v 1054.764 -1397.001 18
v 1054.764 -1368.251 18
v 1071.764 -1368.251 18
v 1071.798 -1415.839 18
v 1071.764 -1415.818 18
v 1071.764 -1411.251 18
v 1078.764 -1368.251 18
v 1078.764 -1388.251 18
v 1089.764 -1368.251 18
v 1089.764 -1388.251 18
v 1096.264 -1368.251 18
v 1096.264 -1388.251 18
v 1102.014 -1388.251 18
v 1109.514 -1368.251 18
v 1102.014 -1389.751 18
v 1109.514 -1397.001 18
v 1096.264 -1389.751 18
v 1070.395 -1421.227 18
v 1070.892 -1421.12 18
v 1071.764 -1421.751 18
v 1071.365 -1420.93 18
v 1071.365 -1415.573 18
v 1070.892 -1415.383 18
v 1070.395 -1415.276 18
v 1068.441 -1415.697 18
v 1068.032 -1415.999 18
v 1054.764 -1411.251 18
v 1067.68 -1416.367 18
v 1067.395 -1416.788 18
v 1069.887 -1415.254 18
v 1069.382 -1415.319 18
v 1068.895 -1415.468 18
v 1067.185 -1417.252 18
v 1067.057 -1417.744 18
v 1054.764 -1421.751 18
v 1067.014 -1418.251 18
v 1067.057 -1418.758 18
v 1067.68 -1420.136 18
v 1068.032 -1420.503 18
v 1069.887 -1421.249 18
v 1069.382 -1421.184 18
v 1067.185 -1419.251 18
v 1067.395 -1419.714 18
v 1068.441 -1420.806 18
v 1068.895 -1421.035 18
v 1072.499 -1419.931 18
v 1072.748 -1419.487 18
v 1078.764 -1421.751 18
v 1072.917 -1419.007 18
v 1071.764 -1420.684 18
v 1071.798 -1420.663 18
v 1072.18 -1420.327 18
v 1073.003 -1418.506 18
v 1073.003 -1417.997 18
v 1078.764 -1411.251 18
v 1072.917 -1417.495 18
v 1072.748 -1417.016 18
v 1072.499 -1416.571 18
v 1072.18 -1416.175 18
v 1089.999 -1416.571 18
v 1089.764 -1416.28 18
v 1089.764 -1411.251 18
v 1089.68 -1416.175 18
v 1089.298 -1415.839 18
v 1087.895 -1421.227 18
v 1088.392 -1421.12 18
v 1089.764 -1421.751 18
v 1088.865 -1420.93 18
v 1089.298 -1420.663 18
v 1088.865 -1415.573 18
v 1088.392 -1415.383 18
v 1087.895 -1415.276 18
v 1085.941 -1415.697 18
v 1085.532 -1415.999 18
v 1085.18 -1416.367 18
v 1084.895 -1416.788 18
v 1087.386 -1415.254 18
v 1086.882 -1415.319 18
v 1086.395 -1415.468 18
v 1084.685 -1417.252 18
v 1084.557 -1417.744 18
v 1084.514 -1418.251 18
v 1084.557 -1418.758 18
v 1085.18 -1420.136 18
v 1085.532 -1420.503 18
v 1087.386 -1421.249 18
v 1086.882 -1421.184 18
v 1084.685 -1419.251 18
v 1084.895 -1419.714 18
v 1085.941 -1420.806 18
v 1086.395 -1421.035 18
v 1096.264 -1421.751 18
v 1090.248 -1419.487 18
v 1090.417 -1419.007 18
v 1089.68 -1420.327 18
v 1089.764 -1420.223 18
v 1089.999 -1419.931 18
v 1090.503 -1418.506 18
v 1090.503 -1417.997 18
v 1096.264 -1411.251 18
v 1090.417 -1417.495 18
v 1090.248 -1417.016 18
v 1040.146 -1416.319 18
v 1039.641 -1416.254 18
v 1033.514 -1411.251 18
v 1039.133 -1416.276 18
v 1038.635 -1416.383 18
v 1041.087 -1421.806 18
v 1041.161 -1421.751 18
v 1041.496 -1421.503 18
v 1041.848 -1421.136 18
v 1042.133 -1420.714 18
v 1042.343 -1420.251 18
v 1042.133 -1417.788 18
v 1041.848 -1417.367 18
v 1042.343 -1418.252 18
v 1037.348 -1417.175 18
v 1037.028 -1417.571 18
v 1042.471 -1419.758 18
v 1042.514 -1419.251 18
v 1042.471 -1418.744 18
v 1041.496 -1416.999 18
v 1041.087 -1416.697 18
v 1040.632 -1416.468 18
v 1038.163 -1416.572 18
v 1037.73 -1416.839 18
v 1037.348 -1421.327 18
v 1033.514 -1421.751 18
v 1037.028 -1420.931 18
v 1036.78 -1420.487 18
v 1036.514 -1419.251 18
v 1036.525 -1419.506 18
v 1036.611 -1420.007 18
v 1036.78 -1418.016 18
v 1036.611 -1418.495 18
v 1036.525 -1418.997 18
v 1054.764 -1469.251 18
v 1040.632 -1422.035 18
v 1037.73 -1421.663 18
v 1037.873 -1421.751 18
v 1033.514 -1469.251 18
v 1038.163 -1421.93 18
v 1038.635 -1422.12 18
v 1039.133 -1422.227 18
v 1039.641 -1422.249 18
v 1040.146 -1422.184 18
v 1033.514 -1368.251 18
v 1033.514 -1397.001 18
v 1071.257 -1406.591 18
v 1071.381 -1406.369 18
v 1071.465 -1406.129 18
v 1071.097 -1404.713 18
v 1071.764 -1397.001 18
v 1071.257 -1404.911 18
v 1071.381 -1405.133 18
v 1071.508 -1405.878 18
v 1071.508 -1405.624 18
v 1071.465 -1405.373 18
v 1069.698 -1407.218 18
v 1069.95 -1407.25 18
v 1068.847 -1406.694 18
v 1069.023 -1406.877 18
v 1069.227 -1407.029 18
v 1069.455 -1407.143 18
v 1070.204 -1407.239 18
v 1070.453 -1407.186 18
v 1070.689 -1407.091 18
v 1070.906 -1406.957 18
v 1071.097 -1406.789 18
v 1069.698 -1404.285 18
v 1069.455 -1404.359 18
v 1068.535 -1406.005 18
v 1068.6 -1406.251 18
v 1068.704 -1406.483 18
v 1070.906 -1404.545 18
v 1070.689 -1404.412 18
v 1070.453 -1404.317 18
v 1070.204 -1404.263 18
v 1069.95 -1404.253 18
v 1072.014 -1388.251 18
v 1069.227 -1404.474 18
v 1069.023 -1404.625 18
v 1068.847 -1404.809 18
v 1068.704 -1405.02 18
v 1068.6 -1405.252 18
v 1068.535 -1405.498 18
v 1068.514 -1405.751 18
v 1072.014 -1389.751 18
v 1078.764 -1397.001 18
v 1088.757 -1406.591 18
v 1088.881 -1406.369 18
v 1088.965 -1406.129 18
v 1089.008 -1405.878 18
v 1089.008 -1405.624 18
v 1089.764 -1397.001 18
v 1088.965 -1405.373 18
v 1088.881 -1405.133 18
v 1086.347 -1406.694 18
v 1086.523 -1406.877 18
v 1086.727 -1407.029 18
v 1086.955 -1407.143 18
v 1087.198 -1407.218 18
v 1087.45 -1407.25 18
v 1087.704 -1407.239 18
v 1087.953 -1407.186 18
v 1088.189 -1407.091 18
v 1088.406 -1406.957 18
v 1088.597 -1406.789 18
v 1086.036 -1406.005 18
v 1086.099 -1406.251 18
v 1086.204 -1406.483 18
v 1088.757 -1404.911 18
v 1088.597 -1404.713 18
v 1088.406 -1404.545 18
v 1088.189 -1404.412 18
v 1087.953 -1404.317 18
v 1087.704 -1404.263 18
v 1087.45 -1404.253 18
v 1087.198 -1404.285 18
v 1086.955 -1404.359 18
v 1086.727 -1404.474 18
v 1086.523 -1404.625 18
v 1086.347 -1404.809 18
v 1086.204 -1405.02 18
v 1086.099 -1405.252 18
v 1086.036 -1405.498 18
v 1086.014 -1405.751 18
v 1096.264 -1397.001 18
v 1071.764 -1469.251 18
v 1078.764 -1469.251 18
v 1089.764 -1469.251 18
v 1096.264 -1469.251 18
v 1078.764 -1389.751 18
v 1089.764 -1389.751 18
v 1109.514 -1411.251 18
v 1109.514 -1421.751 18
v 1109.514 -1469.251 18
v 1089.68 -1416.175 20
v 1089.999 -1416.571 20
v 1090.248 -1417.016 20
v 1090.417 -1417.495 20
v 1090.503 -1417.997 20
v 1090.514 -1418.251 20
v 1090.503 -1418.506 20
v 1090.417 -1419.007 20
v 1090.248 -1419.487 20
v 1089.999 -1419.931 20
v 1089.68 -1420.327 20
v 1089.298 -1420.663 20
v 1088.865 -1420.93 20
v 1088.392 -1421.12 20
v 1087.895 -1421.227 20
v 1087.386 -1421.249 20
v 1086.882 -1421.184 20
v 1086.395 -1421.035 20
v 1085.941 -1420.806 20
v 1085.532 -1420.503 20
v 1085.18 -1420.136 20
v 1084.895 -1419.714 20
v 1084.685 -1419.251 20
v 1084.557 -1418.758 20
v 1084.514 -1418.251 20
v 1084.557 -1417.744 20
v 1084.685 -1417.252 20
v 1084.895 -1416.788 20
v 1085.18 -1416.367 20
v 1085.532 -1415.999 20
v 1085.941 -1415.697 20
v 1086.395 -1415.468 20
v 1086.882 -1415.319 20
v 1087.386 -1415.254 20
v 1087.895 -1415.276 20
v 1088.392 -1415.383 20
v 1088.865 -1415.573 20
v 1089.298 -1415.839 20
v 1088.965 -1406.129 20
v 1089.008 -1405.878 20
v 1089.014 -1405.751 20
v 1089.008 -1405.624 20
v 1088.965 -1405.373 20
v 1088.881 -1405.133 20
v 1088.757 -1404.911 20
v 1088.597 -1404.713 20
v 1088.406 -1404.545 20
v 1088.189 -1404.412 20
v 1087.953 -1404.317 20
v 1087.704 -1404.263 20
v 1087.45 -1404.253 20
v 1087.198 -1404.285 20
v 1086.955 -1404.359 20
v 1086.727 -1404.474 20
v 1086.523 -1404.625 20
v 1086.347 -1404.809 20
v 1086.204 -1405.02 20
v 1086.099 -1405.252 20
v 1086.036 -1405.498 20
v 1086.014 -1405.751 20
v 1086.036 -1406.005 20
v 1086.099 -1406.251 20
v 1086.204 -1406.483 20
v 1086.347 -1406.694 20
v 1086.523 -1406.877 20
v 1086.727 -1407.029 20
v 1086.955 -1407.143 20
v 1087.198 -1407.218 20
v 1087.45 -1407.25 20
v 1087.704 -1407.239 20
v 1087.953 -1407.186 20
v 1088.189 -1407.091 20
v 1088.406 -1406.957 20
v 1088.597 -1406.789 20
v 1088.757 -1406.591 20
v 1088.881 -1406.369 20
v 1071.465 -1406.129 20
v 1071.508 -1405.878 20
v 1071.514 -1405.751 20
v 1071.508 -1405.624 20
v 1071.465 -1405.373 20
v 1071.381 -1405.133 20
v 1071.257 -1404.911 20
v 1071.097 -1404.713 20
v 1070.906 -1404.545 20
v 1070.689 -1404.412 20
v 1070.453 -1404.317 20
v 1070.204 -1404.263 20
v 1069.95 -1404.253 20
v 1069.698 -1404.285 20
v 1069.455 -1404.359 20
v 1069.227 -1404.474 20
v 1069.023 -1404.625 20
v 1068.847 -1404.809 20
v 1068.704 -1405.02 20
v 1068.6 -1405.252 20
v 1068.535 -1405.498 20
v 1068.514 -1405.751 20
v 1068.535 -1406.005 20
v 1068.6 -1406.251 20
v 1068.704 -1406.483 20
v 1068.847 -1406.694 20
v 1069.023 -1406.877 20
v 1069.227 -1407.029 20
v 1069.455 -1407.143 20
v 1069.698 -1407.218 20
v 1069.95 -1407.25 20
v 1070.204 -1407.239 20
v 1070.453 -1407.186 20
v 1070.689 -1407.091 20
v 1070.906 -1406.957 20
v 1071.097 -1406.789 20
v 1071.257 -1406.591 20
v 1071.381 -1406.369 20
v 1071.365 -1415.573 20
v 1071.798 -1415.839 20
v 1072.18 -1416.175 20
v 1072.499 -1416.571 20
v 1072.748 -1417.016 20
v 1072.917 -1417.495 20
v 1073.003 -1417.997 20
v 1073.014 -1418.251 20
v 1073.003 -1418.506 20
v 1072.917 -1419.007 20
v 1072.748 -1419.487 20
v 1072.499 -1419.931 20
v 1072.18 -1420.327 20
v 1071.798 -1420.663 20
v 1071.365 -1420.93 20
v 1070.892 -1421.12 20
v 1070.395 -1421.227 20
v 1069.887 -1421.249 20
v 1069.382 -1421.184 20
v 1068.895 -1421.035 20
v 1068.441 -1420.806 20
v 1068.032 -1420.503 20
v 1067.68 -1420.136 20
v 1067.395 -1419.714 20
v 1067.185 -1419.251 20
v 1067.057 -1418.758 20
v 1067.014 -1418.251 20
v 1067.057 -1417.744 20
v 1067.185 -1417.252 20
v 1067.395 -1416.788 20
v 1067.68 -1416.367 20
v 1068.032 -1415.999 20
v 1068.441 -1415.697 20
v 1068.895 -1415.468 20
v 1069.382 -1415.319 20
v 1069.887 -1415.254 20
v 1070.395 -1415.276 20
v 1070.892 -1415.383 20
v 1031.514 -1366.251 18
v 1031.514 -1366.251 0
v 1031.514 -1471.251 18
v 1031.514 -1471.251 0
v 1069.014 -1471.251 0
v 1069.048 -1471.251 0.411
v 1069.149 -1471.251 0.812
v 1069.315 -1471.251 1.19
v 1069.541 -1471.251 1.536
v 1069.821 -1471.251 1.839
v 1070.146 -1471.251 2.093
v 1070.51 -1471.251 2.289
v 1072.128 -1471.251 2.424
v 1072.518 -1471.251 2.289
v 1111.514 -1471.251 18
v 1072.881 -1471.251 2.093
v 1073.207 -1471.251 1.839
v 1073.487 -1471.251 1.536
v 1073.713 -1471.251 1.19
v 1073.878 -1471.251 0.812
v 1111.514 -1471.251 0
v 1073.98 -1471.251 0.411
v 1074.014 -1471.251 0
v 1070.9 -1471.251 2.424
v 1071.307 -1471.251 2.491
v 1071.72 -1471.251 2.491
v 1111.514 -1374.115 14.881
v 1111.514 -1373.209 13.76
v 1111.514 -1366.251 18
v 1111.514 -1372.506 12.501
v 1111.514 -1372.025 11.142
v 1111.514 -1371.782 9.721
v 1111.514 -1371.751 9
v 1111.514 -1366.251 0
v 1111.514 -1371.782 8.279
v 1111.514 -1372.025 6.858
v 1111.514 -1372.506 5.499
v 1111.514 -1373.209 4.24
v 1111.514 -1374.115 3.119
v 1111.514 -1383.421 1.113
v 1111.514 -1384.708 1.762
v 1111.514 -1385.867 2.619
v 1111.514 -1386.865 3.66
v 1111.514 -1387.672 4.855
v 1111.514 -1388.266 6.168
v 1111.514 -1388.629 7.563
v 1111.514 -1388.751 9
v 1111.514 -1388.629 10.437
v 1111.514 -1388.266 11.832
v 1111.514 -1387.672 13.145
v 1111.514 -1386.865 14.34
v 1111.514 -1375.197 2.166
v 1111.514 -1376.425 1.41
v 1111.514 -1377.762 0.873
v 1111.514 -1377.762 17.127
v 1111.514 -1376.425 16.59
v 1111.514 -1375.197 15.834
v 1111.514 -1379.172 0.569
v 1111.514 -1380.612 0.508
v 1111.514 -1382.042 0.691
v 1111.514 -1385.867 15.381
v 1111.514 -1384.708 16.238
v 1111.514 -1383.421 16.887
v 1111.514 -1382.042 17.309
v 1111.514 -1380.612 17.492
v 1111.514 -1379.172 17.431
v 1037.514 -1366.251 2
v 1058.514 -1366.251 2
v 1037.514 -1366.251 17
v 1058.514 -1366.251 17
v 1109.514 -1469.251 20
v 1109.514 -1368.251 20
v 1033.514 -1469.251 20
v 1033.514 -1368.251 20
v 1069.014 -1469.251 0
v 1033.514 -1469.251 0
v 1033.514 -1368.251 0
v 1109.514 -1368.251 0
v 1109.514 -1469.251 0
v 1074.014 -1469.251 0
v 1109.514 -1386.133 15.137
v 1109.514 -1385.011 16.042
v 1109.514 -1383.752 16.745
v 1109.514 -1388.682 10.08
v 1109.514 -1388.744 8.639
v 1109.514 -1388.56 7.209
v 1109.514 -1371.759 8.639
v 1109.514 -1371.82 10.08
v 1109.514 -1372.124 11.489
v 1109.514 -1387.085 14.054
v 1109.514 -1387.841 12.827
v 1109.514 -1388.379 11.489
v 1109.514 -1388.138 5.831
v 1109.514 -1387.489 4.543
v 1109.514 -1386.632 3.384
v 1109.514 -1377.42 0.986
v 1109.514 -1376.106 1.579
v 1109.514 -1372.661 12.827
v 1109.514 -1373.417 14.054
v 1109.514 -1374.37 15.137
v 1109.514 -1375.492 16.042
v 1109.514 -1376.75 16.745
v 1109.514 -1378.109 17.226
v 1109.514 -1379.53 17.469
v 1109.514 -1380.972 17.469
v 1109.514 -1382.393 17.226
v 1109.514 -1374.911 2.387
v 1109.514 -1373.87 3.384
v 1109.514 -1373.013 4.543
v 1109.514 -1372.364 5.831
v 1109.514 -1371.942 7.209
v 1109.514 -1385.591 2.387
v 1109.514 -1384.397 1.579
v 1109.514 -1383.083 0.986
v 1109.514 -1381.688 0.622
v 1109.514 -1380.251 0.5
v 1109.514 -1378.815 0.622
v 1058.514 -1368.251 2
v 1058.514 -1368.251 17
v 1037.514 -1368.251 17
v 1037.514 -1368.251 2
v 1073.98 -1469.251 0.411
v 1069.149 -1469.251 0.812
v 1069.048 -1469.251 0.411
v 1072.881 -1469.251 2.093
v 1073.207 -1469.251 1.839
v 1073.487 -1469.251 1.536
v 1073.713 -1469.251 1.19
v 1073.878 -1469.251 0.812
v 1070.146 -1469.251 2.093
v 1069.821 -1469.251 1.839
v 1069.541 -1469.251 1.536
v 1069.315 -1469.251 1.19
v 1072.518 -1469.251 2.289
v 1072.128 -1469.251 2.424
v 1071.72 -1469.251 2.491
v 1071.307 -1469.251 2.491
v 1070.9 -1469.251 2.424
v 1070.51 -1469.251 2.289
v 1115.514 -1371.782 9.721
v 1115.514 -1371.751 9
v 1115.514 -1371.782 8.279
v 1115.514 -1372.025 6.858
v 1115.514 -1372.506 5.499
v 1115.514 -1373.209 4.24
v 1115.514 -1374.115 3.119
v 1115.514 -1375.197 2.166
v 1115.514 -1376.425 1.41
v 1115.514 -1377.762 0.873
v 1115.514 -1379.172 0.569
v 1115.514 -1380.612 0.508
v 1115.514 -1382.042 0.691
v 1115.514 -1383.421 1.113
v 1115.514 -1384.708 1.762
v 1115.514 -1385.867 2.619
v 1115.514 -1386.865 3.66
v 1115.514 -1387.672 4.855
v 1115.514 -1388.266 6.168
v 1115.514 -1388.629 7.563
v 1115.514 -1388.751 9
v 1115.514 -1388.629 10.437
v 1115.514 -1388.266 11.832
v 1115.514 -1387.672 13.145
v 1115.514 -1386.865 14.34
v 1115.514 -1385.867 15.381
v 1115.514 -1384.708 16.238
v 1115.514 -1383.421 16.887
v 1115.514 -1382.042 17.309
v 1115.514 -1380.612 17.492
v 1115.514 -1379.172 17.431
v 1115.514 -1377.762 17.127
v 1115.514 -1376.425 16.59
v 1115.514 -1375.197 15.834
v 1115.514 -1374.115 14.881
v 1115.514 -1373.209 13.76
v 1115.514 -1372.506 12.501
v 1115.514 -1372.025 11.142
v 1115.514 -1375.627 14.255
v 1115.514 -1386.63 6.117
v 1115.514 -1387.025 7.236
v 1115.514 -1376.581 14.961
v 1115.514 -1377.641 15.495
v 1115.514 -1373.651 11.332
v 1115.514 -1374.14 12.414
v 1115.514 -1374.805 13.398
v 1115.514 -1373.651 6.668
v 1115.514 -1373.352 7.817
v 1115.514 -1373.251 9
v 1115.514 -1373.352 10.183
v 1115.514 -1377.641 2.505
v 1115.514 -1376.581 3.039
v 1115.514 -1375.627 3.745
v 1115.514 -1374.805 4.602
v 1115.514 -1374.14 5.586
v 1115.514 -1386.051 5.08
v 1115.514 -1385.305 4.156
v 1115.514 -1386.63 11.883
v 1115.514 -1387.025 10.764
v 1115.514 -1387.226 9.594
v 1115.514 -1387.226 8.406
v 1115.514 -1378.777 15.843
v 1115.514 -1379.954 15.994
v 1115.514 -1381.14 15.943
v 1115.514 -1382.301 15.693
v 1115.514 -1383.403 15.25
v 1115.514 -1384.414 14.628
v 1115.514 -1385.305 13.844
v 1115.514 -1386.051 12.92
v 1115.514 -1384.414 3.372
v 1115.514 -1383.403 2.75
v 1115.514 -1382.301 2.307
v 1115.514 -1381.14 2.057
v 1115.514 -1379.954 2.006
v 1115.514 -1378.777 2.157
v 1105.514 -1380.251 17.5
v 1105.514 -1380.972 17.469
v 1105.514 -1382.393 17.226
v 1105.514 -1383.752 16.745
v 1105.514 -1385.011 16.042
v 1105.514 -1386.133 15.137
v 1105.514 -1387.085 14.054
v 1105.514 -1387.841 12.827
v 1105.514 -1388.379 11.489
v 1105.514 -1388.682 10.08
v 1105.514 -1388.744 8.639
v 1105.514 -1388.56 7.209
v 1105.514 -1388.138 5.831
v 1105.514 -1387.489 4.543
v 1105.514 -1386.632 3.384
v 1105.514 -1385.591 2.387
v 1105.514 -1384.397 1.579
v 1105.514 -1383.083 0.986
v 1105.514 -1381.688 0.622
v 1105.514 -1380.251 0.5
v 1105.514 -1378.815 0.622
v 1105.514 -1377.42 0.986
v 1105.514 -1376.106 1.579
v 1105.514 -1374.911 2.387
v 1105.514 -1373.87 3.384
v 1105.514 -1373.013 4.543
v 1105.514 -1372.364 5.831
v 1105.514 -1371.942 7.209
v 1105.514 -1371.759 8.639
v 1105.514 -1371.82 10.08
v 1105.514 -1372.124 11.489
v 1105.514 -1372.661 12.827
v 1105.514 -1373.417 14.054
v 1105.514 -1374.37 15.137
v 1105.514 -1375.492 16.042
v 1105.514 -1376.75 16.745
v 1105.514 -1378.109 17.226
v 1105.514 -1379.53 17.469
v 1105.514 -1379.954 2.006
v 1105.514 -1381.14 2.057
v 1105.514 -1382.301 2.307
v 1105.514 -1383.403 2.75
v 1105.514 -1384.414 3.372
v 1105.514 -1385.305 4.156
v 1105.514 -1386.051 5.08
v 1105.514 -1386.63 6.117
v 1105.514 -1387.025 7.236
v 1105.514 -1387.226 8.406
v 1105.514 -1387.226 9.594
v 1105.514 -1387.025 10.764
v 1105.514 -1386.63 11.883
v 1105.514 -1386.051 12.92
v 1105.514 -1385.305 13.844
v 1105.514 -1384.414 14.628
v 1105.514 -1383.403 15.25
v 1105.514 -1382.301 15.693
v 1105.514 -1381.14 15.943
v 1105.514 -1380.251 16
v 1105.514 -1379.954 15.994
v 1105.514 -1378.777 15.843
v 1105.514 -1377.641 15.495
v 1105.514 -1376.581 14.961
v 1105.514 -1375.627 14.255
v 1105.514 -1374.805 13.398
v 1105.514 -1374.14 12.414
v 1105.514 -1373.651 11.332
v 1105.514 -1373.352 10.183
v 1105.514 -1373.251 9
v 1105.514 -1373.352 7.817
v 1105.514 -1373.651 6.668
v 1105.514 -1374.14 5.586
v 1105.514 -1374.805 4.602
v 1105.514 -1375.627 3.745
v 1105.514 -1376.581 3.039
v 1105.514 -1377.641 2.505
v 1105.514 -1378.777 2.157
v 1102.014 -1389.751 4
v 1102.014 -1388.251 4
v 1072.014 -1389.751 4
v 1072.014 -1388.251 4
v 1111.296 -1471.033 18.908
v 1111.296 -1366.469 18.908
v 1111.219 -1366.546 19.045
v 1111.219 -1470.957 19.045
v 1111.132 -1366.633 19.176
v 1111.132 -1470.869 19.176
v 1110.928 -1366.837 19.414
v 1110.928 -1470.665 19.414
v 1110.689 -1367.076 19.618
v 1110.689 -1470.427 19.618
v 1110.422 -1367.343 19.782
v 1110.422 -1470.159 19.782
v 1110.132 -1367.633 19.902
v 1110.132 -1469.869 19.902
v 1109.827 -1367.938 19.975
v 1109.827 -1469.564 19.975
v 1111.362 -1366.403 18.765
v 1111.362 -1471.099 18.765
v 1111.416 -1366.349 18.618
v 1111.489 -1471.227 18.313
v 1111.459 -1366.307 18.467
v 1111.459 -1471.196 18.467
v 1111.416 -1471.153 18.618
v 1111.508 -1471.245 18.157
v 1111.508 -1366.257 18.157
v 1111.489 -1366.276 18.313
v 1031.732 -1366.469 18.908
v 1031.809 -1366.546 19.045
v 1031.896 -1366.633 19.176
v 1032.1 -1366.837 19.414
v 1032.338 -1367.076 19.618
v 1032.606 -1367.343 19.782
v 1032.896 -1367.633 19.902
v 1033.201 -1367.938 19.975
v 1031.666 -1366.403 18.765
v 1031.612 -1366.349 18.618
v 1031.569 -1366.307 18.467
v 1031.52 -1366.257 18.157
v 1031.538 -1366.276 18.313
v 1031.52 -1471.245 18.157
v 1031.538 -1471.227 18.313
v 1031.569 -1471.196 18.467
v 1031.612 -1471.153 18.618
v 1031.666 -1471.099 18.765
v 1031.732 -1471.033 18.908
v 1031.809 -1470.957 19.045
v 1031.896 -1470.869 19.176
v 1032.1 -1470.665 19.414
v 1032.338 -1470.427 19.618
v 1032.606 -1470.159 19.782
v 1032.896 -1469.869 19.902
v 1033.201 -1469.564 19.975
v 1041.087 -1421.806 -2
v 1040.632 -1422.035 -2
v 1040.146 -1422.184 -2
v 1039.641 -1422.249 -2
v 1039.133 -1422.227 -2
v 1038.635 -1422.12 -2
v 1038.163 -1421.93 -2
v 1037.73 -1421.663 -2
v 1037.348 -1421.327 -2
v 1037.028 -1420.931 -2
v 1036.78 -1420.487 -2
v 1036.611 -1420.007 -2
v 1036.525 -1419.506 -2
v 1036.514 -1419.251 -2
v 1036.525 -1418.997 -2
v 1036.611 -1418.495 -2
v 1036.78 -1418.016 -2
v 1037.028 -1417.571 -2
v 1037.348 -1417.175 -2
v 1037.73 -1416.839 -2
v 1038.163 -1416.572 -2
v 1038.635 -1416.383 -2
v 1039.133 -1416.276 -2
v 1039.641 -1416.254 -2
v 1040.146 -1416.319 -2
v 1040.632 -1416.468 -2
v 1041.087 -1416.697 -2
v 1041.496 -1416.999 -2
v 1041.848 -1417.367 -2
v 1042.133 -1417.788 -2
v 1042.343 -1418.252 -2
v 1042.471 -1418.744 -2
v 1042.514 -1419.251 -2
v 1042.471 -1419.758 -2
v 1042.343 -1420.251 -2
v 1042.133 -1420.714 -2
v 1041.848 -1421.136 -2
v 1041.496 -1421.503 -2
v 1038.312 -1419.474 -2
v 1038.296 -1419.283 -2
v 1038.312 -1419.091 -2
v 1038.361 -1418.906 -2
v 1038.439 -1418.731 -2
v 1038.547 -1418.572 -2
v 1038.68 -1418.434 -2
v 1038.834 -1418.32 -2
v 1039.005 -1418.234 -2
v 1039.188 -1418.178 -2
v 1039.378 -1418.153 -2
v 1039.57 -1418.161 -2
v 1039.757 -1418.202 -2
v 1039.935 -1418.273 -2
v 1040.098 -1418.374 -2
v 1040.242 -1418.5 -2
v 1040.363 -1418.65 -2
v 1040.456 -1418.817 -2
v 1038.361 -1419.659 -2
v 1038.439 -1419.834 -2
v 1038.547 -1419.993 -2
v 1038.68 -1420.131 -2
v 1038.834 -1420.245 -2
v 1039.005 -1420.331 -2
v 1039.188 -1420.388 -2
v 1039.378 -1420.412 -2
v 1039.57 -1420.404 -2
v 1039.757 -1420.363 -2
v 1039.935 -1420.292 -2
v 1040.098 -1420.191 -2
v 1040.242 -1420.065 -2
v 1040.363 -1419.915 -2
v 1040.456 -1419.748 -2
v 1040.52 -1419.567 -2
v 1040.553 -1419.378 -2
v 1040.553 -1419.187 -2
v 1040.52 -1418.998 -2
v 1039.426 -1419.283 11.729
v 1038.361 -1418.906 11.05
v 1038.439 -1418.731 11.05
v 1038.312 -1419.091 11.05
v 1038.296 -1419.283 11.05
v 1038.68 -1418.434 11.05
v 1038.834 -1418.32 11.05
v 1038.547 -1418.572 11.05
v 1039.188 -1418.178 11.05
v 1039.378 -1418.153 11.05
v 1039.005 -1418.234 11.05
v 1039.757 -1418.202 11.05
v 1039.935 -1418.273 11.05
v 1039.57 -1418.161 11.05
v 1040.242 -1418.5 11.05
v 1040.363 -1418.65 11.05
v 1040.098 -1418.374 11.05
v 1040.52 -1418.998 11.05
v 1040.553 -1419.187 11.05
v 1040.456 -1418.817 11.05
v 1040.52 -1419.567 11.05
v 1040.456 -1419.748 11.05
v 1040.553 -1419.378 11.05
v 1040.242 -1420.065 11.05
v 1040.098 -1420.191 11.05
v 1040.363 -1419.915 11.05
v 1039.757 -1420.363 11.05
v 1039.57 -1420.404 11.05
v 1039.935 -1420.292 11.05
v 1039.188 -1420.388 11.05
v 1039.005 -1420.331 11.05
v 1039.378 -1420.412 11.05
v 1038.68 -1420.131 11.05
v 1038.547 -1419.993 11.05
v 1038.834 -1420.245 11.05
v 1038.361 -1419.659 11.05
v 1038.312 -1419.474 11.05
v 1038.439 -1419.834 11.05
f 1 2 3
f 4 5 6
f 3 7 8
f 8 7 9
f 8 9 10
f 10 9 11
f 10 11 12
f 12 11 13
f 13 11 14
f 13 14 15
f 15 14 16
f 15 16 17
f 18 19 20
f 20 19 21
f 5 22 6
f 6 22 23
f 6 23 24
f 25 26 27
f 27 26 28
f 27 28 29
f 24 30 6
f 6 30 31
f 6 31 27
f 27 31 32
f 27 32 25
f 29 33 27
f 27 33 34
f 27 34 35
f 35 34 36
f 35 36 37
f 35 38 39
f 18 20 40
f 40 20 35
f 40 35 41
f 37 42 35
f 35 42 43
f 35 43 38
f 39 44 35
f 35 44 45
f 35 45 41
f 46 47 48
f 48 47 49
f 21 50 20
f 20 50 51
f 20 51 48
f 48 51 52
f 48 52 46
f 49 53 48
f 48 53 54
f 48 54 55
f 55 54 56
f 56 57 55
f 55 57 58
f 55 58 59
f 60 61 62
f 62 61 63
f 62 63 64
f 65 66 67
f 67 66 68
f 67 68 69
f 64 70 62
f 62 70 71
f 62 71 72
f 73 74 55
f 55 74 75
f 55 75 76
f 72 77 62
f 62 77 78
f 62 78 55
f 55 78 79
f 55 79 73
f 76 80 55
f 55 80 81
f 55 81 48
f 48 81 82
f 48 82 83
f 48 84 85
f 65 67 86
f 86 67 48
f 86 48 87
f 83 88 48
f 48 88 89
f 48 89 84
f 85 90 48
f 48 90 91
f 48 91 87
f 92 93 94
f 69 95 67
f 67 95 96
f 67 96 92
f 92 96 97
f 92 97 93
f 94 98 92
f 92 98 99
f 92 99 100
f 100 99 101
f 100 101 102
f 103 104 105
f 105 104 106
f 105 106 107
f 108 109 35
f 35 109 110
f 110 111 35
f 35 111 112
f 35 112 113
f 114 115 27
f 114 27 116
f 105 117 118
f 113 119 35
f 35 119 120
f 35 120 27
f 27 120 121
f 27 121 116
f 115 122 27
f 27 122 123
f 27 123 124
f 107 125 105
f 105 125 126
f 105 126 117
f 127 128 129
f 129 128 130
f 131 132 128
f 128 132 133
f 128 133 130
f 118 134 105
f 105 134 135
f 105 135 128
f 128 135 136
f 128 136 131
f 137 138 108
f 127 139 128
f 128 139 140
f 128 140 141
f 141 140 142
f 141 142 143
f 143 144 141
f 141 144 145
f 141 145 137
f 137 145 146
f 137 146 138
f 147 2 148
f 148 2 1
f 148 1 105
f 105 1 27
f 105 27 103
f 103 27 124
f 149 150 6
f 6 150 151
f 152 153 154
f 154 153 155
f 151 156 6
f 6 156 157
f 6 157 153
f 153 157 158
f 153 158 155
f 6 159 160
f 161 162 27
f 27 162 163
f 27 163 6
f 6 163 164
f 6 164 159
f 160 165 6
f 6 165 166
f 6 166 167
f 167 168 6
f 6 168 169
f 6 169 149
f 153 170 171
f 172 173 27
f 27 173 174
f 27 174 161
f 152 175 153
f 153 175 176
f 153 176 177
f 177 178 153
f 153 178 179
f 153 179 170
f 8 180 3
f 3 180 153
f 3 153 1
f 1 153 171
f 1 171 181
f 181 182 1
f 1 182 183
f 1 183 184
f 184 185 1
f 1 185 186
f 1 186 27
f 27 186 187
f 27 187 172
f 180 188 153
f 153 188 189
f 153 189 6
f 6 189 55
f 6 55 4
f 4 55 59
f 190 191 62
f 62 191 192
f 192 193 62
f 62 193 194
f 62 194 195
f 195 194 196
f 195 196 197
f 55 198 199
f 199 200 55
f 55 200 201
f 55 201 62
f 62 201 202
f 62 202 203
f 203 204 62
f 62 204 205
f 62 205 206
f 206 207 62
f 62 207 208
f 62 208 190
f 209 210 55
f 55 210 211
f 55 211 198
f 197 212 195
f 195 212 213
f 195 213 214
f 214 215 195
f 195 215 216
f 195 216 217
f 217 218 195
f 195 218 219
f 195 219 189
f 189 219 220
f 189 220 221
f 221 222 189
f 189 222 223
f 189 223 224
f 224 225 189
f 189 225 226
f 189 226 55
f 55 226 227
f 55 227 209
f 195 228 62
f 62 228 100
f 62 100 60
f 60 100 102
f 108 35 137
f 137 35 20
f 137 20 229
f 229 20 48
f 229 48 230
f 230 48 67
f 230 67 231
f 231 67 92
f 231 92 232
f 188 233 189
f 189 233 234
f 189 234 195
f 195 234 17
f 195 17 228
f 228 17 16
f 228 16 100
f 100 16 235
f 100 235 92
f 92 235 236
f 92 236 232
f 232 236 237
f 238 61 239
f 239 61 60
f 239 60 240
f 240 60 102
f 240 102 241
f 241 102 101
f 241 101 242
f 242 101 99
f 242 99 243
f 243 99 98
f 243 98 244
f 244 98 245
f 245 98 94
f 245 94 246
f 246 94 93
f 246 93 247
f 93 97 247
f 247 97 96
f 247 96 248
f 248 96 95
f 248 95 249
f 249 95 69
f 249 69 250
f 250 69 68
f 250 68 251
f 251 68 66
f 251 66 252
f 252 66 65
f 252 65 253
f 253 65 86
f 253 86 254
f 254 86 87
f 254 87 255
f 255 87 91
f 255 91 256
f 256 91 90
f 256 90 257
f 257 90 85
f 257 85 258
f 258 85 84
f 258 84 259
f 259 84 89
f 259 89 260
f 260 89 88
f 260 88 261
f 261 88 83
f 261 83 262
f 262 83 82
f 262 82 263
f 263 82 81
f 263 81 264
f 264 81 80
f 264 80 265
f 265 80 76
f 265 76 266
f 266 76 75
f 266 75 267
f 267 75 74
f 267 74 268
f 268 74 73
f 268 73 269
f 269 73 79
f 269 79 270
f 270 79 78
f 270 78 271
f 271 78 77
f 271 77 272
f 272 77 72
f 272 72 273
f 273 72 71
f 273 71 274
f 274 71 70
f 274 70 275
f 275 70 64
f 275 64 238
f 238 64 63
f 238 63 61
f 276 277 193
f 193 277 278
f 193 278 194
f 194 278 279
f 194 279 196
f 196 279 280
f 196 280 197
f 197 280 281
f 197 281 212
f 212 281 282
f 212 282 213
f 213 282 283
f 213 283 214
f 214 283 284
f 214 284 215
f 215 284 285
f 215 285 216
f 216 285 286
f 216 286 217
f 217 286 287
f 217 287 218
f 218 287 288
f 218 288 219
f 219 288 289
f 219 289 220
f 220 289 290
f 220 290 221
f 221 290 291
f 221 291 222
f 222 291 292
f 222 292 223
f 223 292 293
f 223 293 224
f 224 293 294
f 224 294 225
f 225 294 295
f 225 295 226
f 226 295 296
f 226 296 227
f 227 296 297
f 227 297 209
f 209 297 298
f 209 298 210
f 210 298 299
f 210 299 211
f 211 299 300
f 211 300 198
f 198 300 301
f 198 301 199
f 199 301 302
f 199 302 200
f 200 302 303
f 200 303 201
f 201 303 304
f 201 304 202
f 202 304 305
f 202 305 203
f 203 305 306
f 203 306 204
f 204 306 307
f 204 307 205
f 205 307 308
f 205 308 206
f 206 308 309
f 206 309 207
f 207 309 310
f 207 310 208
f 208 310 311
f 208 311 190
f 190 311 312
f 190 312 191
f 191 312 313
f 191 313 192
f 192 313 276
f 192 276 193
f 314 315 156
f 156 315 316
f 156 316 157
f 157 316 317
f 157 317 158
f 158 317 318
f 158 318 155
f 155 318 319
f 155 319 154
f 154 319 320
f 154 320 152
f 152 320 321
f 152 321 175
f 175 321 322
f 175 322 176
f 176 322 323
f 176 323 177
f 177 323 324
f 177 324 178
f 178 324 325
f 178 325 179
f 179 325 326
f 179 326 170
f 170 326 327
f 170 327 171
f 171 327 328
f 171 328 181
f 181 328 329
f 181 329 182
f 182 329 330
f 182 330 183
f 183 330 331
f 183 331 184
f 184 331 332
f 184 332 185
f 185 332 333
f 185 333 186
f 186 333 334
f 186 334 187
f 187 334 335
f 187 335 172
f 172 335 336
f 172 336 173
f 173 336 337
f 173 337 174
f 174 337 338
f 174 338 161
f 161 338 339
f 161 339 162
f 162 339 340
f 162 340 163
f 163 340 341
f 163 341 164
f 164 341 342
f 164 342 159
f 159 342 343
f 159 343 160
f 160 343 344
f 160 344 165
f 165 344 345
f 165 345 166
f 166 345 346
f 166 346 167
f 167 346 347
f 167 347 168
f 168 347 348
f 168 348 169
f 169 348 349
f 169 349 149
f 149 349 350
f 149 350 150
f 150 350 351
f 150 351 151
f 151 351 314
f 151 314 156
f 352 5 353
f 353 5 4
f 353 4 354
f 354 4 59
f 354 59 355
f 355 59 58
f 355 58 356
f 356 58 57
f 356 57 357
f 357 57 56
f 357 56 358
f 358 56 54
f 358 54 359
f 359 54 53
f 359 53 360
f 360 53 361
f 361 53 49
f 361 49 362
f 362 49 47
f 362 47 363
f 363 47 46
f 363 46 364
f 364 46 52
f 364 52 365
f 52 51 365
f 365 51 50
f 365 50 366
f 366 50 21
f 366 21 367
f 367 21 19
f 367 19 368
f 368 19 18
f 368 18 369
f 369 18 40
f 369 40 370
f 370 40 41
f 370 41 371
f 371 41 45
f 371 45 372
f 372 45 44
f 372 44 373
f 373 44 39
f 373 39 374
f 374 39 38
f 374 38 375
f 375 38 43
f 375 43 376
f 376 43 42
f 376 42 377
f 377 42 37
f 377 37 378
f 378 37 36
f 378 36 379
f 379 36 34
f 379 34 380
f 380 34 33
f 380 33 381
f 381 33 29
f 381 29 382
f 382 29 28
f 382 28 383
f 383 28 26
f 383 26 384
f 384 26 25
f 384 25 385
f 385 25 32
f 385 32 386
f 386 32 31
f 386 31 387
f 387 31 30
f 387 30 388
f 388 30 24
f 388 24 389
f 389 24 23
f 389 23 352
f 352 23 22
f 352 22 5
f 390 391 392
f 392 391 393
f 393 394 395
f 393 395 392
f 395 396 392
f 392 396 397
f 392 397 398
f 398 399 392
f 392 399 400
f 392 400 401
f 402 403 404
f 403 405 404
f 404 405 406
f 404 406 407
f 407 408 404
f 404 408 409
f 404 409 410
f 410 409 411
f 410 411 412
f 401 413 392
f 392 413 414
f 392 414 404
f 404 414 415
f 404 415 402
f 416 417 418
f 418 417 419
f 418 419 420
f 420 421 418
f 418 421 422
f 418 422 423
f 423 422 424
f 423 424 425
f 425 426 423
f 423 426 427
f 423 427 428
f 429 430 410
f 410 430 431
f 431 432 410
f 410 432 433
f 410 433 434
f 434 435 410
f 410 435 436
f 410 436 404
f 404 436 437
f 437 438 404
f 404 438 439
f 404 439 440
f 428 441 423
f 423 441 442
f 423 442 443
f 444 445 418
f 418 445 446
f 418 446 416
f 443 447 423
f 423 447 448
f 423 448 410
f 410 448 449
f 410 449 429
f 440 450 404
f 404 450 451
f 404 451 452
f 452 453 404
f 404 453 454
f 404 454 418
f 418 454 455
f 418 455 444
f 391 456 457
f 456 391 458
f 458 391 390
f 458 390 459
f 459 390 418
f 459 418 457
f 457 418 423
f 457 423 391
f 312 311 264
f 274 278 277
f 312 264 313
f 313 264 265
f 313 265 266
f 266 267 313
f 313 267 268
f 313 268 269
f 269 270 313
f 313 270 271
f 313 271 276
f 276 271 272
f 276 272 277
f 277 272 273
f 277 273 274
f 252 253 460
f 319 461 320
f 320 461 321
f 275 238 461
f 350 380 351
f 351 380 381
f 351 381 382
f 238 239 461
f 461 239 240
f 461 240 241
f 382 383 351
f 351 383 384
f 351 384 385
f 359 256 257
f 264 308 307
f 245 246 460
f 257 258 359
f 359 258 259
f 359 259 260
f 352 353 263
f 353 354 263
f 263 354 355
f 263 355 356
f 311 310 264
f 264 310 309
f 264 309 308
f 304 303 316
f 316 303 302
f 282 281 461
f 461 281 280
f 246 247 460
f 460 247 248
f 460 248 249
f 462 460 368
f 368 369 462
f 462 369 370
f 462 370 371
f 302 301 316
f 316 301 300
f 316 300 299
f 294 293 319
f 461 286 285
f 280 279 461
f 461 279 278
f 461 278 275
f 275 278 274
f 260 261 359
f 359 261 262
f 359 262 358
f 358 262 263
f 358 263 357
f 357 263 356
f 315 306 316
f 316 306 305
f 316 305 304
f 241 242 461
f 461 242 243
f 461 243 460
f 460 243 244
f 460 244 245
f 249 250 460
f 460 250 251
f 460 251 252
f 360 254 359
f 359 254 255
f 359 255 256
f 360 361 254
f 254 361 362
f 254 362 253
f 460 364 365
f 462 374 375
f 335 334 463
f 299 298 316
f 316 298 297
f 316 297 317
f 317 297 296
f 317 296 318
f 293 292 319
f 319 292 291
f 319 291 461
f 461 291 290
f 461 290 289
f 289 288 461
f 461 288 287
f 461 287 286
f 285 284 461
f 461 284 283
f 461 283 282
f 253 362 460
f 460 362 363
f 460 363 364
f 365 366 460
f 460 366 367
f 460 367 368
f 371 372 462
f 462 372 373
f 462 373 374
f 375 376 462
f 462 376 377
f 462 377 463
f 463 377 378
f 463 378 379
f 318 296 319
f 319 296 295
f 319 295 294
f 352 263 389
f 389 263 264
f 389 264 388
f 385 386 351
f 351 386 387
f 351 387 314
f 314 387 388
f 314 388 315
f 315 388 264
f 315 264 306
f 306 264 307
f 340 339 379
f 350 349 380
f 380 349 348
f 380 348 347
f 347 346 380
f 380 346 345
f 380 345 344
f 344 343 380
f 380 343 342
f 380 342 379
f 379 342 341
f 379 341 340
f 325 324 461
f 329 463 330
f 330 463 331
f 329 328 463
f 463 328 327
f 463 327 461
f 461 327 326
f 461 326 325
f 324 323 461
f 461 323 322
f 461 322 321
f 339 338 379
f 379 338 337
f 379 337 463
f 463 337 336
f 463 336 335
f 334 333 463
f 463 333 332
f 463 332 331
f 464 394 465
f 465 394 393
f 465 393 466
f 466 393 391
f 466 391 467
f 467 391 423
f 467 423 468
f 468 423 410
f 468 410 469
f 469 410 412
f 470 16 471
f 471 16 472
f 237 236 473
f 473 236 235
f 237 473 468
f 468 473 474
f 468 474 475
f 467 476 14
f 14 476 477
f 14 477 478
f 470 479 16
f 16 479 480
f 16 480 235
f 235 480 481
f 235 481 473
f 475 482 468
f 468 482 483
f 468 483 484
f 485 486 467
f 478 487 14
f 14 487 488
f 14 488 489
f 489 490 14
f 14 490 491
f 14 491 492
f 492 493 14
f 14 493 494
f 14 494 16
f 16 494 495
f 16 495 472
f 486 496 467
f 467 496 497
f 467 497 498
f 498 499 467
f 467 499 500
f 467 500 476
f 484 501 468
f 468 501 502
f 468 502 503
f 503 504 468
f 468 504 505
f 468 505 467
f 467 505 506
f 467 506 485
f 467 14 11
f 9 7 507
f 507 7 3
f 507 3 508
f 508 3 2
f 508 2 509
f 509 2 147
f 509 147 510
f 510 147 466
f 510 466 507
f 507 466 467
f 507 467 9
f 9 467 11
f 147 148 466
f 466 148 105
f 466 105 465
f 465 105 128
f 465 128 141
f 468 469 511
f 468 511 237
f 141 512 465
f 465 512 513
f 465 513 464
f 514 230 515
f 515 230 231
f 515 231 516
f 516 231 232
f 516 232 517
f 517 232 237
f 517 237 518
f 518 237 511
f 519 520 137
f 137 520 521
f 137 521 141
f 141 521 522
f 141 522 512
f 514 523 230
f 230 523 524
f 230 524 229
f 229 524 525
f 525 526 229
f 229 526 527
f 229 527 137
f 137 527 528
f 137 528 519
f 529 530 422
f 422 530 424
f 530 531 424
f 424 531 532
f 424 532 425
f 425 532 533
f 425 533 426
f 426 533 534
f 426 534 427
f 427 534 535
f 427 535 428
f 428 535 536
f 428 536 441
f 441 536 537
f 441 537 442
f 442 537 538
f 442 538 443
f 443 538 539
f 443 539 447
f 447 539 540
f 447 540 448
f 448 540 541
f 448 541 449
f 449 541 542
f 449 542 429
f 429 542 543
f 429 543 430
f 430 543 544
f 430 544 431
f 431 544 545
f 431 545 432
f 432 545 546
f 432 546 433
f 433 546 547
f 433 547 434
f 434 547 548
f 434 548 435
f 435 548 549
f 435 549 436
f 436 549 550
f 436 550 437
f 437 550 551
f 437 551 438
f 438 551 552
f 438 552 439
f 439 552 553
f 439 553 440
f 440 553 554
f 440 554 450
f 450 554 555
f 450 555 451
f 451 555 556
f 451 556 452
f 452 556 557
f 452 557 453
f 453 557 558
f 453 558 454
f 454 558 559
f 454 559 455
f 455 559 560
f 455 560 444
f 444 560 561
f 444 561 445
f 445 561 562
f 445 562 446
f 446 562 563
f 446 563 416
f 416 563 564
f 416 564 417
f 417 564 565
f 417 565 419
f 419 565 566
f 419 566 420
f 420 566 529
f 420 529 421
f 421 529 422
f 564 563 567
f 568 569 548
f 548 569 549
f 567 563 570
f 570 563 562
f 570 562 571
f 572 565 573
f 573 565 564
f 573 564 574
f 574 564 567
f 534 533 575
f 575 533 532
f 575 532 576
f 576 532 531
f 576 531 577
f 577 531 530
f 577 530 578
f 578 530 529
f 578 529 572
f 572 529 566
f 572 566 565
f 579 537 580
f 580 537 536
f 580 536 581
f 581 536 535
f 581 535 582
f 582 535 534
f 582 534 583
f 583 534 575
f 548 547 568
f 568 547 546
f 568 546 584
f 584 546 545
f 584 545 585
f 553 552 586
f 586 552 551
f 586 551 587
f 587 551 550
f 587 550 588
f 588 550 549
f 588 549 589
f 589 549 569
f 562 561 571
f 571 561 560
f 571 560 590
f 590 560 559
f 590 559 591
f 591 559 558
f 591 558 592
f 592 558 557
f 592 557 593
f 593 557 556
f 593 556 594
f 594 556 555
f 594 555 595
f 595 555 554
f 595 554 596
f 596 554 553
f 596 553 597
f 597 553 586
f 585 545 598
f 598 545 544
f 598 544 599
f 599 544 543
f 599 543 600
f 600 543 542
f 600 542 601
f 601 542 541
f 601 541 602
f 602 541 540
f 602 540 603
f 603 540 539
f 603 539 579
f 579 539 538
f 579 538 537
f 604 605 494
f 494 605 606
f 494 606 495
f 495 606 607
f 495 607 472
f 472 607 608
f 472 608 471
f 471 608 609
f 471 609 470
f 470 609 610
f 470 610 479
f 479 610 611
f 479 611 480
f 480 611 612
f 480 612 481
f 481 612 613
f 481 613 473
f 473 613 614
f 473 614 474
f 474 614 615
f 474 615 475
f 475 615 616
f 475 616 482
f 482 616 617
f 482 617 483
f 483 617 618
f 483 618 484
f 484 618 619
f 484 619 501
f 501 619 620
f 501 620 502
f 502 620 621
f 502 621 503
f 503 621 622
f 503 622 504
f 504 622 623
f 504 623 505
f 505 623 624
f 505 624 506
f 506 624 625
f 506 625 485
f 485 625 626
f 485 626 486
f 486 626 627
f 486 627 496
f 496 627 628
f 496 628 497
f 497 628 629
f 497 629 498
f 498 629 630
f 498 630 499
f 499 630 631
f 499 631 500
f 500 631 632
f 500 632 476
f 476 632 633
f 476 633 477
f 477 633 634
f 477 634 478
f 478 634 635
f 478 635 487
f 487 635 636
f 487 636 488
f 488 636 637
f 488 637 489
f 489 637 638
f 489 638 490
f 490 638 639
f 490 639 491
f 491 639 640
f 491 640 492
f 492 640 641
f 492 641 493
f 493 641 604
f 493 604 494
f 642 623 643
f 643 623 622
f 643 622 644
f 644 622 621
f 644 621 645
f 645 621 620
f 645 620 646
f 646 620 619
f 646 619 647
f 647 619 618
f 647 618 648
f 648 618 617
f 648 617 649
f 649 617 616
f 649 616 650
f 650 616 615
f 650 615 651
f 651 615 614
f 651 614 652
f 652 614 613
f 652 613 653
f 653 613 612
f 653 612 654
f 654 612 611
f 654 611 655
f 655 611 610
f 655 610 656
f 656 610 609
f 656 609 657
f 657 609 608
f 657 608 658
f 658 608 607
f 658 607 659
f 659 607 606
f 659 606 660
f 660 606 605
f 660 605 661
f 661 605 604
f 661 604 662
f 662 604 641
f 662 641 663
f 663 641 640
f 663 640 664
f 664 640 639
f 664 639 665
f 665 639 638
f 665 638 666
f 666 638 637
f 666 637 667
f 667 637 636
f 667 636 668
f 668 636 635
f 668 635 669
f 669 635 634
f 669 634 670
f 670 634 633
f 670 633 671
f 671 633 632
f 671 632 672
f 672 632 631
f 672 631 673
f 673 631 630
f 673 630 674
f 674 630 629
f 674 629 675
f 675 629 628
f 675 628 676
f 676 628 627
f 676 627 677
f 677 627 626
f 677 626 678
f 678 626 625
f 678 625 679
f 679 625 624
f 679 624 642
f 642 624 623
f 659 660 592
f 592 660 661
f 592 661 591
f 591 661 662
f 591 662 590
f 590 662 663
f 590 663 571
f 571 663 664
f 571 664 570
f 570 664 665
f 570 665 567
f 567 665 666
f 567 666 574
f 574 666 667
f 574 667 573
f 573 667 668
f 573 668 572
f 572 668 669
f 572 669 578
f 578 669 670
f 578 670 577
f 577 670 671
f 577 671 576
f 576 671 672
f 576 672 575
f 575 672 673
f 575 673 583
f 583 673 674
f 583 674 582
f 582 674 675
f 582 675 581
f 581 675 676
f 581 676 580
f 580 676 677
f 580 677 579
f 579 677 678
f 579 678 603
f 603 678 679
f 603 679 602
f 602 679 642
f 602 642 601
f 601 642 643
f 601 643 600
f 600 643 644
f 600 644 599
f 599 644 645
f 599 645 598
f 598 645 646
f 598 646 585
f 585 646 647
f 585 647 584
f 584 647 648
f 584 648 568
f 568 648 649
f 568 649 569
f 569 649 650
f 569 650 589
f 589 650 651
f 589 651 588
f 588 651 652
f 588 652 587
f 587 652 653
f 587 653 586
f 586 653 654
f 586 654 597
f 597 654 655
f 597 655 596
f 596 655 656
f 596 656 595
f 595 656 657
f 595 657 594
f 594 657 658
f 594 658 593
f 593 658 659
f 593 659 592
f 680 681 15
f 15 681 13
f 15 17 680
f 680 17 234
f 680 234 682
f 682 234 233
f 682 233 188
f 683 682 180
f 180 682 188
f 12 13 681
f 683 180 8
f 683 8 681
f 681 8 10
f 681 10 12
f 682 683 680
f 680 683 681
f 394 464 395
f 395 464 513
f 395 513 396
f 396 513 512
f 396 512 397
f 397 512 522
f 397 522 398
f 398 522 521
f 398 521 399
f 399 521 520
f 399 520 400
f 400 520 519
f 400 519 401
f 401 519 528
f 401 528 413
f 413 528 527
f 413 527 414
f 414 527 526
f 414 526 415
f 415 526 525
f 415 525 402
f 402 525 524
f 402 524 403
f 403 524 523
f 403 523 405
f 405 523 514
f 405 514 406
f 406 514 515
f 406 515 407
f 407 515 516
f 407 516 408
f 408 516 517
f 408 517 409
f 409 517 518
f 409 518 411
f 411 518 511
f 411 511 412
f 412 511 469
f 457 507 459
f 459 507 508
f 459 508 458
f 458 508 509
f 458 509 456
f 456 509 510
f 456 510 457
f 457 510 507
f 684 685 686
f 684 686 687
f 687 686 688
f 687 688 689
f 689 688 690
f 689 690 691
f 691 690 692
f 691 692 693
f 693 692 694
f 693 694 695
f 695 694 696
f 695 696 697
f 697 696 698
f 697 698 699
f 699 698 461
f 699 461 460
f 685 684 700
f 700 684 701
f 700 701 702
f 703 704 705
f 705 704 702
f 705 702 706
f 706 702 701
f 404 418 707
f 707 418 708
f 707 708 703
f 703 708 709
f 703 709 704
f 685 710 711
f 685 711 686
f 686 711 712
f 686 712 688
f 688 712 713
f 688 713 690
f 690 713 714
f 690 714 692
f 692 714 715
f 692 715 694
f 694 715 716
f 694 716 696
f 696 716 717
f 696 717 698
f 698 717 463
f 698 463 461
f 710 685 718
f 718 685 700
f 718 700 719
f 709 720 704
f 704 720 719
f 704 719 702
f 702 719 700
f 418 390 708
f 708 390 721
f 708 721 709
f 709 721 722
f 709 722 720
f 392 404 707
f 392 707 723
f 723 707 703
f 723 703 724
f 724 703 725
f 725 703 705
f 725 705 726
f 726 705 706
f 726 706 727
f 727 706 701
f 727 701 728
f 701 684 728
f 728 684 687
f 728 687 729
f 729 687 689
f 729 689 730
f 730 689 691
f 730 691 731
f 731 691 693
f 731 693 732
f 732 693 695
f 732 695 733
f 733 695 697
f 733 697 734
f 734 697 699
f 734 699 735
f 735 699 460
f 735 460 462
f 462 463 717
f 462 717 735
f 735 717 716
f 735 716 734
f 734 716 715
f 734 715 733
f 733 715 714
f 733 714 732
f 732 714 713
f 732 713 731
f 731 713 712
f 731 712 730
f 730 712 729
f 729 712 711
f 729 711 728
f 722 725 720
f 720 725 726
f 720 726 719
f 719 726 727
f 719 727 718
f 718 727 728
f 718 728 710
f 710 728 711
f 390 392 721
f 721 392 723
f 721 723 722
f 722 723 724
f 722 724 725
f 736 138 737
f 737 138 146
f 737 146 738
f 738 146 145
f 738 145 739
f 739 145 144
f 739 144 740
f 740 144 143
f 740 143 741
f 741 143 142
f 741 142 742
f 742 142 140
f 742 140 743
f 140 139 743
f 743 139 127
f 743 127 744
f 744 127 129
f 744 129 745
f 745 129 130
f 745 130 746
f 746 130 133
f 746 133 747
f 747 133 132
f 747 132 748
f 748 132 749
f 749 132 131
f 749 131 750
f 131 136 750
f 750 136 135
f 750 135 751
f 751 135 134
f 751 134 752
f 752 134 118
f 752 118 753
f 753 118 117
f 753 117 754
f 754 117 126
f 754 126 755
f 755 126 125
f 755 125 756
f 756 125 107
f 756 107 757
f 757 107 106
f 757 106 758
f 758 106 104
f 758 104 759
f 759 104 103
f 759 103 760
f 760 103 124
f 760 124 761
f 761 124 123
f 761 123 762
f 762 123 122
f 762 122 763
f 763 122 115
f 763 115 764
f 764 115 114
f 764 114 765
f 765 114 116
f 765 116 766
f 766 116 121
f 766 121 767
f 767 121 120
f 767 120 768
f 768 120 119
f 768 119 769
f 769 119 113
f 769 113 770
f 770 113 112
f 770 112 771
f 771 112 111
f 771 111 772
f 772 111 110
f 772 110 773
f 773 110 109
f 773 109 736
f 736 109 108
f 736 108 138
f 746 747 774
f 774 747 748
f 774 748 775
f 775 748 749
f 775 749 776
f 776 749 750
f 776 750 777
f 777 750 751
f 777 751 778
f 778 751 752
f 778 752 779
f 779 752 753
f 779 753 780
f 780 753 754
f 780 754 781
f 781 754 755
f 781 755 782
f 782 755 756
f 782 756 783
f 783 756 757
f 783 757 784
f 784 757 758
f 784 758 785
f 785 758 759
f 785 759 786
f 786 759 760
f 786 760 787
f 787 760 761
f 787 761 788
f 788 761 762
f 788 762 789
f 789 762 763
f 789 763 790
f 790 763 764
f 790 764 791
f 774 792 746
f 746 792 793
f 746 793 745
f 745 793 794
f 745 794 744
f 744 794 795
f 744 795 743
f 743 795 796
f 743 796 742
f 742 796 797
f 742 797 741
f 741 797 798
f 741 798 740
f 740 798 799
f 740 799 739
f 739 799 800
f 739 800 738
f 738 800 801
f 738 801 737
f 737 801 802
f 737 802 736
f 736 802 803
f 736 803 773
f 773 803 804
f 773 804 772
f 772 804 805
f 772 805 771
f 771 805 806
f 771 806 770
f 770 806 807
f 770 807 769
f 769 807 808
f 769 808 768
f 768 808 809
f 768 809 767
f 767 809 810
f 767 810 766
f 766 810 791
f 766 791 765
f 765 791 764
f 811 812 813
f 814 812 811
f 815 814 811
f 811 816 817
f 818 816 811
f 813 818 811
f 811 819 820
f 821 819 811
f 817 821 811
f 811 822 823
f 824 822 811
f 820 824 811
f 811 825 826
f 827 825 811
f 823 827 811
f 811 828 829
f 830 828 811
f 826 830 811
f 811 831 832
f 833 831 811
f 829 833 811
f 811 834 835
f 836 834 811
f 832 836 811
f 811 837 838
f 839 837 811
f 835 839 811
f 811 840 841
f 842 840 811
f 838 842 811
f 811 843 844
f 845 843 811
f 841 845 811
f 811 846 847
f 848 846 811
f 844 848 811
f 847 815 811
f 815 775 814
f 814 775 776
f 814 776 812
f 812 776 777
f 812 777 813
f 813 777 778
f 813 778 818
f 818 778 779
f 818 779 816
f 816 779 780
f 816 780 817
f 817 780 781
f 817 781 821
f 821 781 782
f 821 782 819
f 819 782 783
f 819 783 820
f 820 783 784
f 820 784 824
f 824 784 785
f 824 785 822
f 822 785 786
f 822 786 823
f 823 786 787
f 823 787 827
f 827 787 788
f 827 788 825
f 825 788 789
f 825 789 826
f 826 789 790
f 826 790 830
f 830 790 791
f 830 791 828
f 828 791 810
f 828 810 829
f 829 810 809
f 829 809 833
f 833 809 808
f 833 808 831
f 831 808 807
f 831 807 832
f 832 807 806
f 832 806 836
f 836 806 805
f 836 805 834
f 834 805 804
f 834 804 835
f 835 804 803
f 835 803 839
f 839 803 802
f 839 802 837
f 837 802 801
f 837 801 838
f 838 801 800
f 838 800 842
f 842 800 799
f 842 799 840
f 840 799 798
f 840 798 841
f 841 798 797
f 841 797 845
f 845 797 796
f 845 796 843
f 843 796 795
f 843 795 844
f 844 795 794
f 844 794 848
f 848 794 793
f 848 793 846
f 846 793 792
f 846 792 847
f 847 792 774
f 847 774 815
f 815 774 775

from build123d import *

# Parameters (mm, degrees)
SKETCH1_W                     = 80
SKETCH1_H                     = 105
BOSS_EXTRUDE1_DEPTH           = 20
CUT_EXTRUDE4_DEPTH            = 20
CUT_EXTRUDE4_DEPTH_BACK       = 20
SKETCH1_3_R                   = 3
SKETCH1_3_R_2                 = 1.5
SKETCH2_W                     = 76
SKETCH2_H                     = 101
CUT_EXTRUDE5_DEPTH            = 18
SKETCH3_R                     = 6.5
CUT_EXTRUDE6_DEPTH            = 18
SKETCH5_R                     = 8.5
BOSS_EXTRUDE2_DEPTH           = 4
BOSS_EXTRUDE3_START           = 4
SKETCH6_R                     = 8.5
BOSS_EXTRUDE3_DEPTH           = 4
SKETCH7_R                     = 7
CUT_EXTRUDE7_DEPTH            = 24
SKETCH8_W                     = 30
SKETCH8_H                     = 1.5
BOSS_EXTRUDE4_DEPTH           = 14
SKETCH9_R                     = 2.5
CUT_EXTRUDE8_DEPTH            = 14
SKETCH10_W                    = 21
SKETCH10_H                    = 15
CUT_EXTRUDE9_DEPTH            = 14
FILLET1_R                     = 2
SKETCH11_R                    = 3
BOSS_EXTRUDE5_DEPTH           = 20
TAP_DRILL_FOR_4_40_TAP2_D     = 2.2606
TAP_DRILL_FOR_4_40_TAP2_DEPTH = 13.05
TAP_DRILL_FOR_4_40_TAP2_TIP   = 0.679152758


with BuildPart() as part:
    # Sketch1 → Boss-Extrude1 (new body)
    with BuildSketch(Plane.XY):
        with Locations((1071.513868959, -1418.75124805)):
            Rectangle(SKETCH1_W, SKETCH1_H)
    extrude(amount=BOSS_EXTRUDE1_DEPTH)

    # Sketch1<3> → Cut-Extrude4 (cut, two sides: drawn at the far end of the back side and taken through both)
    with BuildSketch(Plane.XY.offset(-CUT_EXTRUDE4_DEPTH_BACK)):
        with Locations((1087.513868959, -1418.25124805)):
            Circle(SKETCH1_3_R)
        with Locations((1070.013868959, -1418.25124805)):
            Circle(SKETCH1_3_R)
        with Locations((1087.513868959, -1405.75124805)):
            Circle(SKETCH1_3_R_2)
        with Locations((1070.013868959, -1405.75124805)):
            Circle(SKETCH1_3_R_2)
    extrude(amount=CUT_EXTRUDE4_DEPTH + CUT_EXTRUDE4_DEPTH_BACK, mode=Mode.SUBTRACT)

    # Sketch2 → Cut-Extrude5 (cut)
    with BuildSketch(Plane(origin=(0, 0, 0), x_dir=(-1, 0, 0), z_dir=(0, 0, -1))):
        with Locations((-1071.513868959, -1418.75124805)):
            Rectangle(SKETCH2_W, SKETCH2_H)
    extrude(amount=-CUT_EXTRUDE5_DEPTH, mode=Mode.SUBTRACT)

    # Sketch3 → Cut-Extrude6 (cut)
    with BuildSketch(Plane.ZY.offset(-1109.513868959)):
        with Locations((9, -1380.25124805)):
            Circle(SKETCH3_R)
    extrude(amount=-CUT_EXTRUDE6_DEPTH, mode=Mode.SUBTRACT)

    # Sketch5 → Boss-Extrude2 (add)
    with BuildSketch(Plane(origin=(1111.513868959, 0, 0), x_dir=(0, 0, -1), z_dir=(1, 0, 0))):
        with Locations((-9, -1380.25124805)):
            Circle(SKETCH5_R)
    extrude(amount=BOSS_EXTRUDE2_DEPTH)

    # Sketch6 → Boss-Extrude3 (add)
    with BuildSketch(Plane.ZY.offset(-1109.513868959).offset(BOSS_EXTRUDE3_START)):
        with Locations((9, -1380.25124805)):
            Circle(SKETCH6_R)
    extrude(amount=-BOSS_EXTRUDE3_DEPTH)

    # Sketch7 → Cut-Extrude7 (cut)
    with BuildSketch(Plane(origin=(1115.513868959, 0, 0), x_dir=(0, 0, -1), z_dir=(1, 0, 0))):
        with Locations((-9, -1380.25124805)):
            Circle(SKETCH7_R)
    extrude(amount=-CUT_EXTRUDE7_DEPTH, mode=Mode.SUBTRACT)

    # Sketch8 → Boss-Extrude4 (add)
    with BuildSketch(Plane(origin=(0, 0, 18), x_dir=(-1, 0, 0), z_dir=(0, 0, -1))):
        with Locations((-1087.013868959, -1389.00124805)):
            Rectangle(SKETCH8_W, SKETCH8_H)
    extrude(amount=BOSS_EXTRUDE4_DEPTH)

    # Sketch9 → Cut-Extrude8 (cut)
    with BuildSketch(Plane(origin=(0, -1469.25124805, 0), x_dir=(1, 0, 0), z_dir=(0, 1, 0))):
        with Locations((1071.513868959, 0)):
            Circle(SKETCH9_R)
    extrude(amount=-CUT_EXTRUDE8_DEPTH, mode=Mode.SUBTRACT)

    # Sketch10 → Cut-Extrude9 (cut)
    with BuildSketch(Plane(origin=(0, -1366.25124805, 0), x_dir=(1, 0, 0), z_dir=(0, 1, 0))):
        with Locations((1048.013868959, -9.5)):
            Rectangle(SKETCH10_W, SKETCH10_H)
    extrude(amount=-CUT_EXTRUDE9_DEPTH, mode=Mode.SUBTRACT)

    # Fillet1
    fillet1_edges = [part.edges().sort_by_distance(p)[0] for p in [
        (1031.513868959, -1418.75124805, 20),
        (1071.513868959, -1471.25124805, 20),
        (1111.513868959, -1418.75124805, 20),
        (1071.513868959, -1366.25124805, 20),
    ]]
    fillet(fillet1_edges, radius=FILLET1_R)

    # Sketch11 → Boss-Extrude5 (add)
    with BuildSketch(Plane(origin=(0, 0, 18), x_dir=(-1, 0, 0), z_dir=(0, 0, -1))):
        with Locations((-1039.513868959, -1419.25124805)):
            Circle(SKETCH11_R)
    extrude(amount=BOSS_EXTRUDE5_DEPTH)

    # Tap Drill for #4-40 Tap2
    with Locations(Plane(origin=(0, 0, -2), x_dir=(-1, 0, 0), z_dir=(0, 0, -1))):
        with Locations((-1039.426320133, -1419.282531473)):
            Hole(TAP_DRILL_FOR_4_40_TAP2_D / 2, depth=TAP_DRILL_FOR_4_40_TAP2_DEPTH)
            with Locations((0, 0, -(TAP_DRILL_FOR_4_40_TAP2_DEPTH + TAP_DRILL_FOR_4_40_TAP2_TIP / 2))):  # 118° drill point
                Cone(0, TAP_DRILL_FOR_4_40_TAP2_D / 2, TAP_DRILL_FOR_4_40_TAP2_TIP, mode=Mode.SUBTRACT)


solid = part.part
